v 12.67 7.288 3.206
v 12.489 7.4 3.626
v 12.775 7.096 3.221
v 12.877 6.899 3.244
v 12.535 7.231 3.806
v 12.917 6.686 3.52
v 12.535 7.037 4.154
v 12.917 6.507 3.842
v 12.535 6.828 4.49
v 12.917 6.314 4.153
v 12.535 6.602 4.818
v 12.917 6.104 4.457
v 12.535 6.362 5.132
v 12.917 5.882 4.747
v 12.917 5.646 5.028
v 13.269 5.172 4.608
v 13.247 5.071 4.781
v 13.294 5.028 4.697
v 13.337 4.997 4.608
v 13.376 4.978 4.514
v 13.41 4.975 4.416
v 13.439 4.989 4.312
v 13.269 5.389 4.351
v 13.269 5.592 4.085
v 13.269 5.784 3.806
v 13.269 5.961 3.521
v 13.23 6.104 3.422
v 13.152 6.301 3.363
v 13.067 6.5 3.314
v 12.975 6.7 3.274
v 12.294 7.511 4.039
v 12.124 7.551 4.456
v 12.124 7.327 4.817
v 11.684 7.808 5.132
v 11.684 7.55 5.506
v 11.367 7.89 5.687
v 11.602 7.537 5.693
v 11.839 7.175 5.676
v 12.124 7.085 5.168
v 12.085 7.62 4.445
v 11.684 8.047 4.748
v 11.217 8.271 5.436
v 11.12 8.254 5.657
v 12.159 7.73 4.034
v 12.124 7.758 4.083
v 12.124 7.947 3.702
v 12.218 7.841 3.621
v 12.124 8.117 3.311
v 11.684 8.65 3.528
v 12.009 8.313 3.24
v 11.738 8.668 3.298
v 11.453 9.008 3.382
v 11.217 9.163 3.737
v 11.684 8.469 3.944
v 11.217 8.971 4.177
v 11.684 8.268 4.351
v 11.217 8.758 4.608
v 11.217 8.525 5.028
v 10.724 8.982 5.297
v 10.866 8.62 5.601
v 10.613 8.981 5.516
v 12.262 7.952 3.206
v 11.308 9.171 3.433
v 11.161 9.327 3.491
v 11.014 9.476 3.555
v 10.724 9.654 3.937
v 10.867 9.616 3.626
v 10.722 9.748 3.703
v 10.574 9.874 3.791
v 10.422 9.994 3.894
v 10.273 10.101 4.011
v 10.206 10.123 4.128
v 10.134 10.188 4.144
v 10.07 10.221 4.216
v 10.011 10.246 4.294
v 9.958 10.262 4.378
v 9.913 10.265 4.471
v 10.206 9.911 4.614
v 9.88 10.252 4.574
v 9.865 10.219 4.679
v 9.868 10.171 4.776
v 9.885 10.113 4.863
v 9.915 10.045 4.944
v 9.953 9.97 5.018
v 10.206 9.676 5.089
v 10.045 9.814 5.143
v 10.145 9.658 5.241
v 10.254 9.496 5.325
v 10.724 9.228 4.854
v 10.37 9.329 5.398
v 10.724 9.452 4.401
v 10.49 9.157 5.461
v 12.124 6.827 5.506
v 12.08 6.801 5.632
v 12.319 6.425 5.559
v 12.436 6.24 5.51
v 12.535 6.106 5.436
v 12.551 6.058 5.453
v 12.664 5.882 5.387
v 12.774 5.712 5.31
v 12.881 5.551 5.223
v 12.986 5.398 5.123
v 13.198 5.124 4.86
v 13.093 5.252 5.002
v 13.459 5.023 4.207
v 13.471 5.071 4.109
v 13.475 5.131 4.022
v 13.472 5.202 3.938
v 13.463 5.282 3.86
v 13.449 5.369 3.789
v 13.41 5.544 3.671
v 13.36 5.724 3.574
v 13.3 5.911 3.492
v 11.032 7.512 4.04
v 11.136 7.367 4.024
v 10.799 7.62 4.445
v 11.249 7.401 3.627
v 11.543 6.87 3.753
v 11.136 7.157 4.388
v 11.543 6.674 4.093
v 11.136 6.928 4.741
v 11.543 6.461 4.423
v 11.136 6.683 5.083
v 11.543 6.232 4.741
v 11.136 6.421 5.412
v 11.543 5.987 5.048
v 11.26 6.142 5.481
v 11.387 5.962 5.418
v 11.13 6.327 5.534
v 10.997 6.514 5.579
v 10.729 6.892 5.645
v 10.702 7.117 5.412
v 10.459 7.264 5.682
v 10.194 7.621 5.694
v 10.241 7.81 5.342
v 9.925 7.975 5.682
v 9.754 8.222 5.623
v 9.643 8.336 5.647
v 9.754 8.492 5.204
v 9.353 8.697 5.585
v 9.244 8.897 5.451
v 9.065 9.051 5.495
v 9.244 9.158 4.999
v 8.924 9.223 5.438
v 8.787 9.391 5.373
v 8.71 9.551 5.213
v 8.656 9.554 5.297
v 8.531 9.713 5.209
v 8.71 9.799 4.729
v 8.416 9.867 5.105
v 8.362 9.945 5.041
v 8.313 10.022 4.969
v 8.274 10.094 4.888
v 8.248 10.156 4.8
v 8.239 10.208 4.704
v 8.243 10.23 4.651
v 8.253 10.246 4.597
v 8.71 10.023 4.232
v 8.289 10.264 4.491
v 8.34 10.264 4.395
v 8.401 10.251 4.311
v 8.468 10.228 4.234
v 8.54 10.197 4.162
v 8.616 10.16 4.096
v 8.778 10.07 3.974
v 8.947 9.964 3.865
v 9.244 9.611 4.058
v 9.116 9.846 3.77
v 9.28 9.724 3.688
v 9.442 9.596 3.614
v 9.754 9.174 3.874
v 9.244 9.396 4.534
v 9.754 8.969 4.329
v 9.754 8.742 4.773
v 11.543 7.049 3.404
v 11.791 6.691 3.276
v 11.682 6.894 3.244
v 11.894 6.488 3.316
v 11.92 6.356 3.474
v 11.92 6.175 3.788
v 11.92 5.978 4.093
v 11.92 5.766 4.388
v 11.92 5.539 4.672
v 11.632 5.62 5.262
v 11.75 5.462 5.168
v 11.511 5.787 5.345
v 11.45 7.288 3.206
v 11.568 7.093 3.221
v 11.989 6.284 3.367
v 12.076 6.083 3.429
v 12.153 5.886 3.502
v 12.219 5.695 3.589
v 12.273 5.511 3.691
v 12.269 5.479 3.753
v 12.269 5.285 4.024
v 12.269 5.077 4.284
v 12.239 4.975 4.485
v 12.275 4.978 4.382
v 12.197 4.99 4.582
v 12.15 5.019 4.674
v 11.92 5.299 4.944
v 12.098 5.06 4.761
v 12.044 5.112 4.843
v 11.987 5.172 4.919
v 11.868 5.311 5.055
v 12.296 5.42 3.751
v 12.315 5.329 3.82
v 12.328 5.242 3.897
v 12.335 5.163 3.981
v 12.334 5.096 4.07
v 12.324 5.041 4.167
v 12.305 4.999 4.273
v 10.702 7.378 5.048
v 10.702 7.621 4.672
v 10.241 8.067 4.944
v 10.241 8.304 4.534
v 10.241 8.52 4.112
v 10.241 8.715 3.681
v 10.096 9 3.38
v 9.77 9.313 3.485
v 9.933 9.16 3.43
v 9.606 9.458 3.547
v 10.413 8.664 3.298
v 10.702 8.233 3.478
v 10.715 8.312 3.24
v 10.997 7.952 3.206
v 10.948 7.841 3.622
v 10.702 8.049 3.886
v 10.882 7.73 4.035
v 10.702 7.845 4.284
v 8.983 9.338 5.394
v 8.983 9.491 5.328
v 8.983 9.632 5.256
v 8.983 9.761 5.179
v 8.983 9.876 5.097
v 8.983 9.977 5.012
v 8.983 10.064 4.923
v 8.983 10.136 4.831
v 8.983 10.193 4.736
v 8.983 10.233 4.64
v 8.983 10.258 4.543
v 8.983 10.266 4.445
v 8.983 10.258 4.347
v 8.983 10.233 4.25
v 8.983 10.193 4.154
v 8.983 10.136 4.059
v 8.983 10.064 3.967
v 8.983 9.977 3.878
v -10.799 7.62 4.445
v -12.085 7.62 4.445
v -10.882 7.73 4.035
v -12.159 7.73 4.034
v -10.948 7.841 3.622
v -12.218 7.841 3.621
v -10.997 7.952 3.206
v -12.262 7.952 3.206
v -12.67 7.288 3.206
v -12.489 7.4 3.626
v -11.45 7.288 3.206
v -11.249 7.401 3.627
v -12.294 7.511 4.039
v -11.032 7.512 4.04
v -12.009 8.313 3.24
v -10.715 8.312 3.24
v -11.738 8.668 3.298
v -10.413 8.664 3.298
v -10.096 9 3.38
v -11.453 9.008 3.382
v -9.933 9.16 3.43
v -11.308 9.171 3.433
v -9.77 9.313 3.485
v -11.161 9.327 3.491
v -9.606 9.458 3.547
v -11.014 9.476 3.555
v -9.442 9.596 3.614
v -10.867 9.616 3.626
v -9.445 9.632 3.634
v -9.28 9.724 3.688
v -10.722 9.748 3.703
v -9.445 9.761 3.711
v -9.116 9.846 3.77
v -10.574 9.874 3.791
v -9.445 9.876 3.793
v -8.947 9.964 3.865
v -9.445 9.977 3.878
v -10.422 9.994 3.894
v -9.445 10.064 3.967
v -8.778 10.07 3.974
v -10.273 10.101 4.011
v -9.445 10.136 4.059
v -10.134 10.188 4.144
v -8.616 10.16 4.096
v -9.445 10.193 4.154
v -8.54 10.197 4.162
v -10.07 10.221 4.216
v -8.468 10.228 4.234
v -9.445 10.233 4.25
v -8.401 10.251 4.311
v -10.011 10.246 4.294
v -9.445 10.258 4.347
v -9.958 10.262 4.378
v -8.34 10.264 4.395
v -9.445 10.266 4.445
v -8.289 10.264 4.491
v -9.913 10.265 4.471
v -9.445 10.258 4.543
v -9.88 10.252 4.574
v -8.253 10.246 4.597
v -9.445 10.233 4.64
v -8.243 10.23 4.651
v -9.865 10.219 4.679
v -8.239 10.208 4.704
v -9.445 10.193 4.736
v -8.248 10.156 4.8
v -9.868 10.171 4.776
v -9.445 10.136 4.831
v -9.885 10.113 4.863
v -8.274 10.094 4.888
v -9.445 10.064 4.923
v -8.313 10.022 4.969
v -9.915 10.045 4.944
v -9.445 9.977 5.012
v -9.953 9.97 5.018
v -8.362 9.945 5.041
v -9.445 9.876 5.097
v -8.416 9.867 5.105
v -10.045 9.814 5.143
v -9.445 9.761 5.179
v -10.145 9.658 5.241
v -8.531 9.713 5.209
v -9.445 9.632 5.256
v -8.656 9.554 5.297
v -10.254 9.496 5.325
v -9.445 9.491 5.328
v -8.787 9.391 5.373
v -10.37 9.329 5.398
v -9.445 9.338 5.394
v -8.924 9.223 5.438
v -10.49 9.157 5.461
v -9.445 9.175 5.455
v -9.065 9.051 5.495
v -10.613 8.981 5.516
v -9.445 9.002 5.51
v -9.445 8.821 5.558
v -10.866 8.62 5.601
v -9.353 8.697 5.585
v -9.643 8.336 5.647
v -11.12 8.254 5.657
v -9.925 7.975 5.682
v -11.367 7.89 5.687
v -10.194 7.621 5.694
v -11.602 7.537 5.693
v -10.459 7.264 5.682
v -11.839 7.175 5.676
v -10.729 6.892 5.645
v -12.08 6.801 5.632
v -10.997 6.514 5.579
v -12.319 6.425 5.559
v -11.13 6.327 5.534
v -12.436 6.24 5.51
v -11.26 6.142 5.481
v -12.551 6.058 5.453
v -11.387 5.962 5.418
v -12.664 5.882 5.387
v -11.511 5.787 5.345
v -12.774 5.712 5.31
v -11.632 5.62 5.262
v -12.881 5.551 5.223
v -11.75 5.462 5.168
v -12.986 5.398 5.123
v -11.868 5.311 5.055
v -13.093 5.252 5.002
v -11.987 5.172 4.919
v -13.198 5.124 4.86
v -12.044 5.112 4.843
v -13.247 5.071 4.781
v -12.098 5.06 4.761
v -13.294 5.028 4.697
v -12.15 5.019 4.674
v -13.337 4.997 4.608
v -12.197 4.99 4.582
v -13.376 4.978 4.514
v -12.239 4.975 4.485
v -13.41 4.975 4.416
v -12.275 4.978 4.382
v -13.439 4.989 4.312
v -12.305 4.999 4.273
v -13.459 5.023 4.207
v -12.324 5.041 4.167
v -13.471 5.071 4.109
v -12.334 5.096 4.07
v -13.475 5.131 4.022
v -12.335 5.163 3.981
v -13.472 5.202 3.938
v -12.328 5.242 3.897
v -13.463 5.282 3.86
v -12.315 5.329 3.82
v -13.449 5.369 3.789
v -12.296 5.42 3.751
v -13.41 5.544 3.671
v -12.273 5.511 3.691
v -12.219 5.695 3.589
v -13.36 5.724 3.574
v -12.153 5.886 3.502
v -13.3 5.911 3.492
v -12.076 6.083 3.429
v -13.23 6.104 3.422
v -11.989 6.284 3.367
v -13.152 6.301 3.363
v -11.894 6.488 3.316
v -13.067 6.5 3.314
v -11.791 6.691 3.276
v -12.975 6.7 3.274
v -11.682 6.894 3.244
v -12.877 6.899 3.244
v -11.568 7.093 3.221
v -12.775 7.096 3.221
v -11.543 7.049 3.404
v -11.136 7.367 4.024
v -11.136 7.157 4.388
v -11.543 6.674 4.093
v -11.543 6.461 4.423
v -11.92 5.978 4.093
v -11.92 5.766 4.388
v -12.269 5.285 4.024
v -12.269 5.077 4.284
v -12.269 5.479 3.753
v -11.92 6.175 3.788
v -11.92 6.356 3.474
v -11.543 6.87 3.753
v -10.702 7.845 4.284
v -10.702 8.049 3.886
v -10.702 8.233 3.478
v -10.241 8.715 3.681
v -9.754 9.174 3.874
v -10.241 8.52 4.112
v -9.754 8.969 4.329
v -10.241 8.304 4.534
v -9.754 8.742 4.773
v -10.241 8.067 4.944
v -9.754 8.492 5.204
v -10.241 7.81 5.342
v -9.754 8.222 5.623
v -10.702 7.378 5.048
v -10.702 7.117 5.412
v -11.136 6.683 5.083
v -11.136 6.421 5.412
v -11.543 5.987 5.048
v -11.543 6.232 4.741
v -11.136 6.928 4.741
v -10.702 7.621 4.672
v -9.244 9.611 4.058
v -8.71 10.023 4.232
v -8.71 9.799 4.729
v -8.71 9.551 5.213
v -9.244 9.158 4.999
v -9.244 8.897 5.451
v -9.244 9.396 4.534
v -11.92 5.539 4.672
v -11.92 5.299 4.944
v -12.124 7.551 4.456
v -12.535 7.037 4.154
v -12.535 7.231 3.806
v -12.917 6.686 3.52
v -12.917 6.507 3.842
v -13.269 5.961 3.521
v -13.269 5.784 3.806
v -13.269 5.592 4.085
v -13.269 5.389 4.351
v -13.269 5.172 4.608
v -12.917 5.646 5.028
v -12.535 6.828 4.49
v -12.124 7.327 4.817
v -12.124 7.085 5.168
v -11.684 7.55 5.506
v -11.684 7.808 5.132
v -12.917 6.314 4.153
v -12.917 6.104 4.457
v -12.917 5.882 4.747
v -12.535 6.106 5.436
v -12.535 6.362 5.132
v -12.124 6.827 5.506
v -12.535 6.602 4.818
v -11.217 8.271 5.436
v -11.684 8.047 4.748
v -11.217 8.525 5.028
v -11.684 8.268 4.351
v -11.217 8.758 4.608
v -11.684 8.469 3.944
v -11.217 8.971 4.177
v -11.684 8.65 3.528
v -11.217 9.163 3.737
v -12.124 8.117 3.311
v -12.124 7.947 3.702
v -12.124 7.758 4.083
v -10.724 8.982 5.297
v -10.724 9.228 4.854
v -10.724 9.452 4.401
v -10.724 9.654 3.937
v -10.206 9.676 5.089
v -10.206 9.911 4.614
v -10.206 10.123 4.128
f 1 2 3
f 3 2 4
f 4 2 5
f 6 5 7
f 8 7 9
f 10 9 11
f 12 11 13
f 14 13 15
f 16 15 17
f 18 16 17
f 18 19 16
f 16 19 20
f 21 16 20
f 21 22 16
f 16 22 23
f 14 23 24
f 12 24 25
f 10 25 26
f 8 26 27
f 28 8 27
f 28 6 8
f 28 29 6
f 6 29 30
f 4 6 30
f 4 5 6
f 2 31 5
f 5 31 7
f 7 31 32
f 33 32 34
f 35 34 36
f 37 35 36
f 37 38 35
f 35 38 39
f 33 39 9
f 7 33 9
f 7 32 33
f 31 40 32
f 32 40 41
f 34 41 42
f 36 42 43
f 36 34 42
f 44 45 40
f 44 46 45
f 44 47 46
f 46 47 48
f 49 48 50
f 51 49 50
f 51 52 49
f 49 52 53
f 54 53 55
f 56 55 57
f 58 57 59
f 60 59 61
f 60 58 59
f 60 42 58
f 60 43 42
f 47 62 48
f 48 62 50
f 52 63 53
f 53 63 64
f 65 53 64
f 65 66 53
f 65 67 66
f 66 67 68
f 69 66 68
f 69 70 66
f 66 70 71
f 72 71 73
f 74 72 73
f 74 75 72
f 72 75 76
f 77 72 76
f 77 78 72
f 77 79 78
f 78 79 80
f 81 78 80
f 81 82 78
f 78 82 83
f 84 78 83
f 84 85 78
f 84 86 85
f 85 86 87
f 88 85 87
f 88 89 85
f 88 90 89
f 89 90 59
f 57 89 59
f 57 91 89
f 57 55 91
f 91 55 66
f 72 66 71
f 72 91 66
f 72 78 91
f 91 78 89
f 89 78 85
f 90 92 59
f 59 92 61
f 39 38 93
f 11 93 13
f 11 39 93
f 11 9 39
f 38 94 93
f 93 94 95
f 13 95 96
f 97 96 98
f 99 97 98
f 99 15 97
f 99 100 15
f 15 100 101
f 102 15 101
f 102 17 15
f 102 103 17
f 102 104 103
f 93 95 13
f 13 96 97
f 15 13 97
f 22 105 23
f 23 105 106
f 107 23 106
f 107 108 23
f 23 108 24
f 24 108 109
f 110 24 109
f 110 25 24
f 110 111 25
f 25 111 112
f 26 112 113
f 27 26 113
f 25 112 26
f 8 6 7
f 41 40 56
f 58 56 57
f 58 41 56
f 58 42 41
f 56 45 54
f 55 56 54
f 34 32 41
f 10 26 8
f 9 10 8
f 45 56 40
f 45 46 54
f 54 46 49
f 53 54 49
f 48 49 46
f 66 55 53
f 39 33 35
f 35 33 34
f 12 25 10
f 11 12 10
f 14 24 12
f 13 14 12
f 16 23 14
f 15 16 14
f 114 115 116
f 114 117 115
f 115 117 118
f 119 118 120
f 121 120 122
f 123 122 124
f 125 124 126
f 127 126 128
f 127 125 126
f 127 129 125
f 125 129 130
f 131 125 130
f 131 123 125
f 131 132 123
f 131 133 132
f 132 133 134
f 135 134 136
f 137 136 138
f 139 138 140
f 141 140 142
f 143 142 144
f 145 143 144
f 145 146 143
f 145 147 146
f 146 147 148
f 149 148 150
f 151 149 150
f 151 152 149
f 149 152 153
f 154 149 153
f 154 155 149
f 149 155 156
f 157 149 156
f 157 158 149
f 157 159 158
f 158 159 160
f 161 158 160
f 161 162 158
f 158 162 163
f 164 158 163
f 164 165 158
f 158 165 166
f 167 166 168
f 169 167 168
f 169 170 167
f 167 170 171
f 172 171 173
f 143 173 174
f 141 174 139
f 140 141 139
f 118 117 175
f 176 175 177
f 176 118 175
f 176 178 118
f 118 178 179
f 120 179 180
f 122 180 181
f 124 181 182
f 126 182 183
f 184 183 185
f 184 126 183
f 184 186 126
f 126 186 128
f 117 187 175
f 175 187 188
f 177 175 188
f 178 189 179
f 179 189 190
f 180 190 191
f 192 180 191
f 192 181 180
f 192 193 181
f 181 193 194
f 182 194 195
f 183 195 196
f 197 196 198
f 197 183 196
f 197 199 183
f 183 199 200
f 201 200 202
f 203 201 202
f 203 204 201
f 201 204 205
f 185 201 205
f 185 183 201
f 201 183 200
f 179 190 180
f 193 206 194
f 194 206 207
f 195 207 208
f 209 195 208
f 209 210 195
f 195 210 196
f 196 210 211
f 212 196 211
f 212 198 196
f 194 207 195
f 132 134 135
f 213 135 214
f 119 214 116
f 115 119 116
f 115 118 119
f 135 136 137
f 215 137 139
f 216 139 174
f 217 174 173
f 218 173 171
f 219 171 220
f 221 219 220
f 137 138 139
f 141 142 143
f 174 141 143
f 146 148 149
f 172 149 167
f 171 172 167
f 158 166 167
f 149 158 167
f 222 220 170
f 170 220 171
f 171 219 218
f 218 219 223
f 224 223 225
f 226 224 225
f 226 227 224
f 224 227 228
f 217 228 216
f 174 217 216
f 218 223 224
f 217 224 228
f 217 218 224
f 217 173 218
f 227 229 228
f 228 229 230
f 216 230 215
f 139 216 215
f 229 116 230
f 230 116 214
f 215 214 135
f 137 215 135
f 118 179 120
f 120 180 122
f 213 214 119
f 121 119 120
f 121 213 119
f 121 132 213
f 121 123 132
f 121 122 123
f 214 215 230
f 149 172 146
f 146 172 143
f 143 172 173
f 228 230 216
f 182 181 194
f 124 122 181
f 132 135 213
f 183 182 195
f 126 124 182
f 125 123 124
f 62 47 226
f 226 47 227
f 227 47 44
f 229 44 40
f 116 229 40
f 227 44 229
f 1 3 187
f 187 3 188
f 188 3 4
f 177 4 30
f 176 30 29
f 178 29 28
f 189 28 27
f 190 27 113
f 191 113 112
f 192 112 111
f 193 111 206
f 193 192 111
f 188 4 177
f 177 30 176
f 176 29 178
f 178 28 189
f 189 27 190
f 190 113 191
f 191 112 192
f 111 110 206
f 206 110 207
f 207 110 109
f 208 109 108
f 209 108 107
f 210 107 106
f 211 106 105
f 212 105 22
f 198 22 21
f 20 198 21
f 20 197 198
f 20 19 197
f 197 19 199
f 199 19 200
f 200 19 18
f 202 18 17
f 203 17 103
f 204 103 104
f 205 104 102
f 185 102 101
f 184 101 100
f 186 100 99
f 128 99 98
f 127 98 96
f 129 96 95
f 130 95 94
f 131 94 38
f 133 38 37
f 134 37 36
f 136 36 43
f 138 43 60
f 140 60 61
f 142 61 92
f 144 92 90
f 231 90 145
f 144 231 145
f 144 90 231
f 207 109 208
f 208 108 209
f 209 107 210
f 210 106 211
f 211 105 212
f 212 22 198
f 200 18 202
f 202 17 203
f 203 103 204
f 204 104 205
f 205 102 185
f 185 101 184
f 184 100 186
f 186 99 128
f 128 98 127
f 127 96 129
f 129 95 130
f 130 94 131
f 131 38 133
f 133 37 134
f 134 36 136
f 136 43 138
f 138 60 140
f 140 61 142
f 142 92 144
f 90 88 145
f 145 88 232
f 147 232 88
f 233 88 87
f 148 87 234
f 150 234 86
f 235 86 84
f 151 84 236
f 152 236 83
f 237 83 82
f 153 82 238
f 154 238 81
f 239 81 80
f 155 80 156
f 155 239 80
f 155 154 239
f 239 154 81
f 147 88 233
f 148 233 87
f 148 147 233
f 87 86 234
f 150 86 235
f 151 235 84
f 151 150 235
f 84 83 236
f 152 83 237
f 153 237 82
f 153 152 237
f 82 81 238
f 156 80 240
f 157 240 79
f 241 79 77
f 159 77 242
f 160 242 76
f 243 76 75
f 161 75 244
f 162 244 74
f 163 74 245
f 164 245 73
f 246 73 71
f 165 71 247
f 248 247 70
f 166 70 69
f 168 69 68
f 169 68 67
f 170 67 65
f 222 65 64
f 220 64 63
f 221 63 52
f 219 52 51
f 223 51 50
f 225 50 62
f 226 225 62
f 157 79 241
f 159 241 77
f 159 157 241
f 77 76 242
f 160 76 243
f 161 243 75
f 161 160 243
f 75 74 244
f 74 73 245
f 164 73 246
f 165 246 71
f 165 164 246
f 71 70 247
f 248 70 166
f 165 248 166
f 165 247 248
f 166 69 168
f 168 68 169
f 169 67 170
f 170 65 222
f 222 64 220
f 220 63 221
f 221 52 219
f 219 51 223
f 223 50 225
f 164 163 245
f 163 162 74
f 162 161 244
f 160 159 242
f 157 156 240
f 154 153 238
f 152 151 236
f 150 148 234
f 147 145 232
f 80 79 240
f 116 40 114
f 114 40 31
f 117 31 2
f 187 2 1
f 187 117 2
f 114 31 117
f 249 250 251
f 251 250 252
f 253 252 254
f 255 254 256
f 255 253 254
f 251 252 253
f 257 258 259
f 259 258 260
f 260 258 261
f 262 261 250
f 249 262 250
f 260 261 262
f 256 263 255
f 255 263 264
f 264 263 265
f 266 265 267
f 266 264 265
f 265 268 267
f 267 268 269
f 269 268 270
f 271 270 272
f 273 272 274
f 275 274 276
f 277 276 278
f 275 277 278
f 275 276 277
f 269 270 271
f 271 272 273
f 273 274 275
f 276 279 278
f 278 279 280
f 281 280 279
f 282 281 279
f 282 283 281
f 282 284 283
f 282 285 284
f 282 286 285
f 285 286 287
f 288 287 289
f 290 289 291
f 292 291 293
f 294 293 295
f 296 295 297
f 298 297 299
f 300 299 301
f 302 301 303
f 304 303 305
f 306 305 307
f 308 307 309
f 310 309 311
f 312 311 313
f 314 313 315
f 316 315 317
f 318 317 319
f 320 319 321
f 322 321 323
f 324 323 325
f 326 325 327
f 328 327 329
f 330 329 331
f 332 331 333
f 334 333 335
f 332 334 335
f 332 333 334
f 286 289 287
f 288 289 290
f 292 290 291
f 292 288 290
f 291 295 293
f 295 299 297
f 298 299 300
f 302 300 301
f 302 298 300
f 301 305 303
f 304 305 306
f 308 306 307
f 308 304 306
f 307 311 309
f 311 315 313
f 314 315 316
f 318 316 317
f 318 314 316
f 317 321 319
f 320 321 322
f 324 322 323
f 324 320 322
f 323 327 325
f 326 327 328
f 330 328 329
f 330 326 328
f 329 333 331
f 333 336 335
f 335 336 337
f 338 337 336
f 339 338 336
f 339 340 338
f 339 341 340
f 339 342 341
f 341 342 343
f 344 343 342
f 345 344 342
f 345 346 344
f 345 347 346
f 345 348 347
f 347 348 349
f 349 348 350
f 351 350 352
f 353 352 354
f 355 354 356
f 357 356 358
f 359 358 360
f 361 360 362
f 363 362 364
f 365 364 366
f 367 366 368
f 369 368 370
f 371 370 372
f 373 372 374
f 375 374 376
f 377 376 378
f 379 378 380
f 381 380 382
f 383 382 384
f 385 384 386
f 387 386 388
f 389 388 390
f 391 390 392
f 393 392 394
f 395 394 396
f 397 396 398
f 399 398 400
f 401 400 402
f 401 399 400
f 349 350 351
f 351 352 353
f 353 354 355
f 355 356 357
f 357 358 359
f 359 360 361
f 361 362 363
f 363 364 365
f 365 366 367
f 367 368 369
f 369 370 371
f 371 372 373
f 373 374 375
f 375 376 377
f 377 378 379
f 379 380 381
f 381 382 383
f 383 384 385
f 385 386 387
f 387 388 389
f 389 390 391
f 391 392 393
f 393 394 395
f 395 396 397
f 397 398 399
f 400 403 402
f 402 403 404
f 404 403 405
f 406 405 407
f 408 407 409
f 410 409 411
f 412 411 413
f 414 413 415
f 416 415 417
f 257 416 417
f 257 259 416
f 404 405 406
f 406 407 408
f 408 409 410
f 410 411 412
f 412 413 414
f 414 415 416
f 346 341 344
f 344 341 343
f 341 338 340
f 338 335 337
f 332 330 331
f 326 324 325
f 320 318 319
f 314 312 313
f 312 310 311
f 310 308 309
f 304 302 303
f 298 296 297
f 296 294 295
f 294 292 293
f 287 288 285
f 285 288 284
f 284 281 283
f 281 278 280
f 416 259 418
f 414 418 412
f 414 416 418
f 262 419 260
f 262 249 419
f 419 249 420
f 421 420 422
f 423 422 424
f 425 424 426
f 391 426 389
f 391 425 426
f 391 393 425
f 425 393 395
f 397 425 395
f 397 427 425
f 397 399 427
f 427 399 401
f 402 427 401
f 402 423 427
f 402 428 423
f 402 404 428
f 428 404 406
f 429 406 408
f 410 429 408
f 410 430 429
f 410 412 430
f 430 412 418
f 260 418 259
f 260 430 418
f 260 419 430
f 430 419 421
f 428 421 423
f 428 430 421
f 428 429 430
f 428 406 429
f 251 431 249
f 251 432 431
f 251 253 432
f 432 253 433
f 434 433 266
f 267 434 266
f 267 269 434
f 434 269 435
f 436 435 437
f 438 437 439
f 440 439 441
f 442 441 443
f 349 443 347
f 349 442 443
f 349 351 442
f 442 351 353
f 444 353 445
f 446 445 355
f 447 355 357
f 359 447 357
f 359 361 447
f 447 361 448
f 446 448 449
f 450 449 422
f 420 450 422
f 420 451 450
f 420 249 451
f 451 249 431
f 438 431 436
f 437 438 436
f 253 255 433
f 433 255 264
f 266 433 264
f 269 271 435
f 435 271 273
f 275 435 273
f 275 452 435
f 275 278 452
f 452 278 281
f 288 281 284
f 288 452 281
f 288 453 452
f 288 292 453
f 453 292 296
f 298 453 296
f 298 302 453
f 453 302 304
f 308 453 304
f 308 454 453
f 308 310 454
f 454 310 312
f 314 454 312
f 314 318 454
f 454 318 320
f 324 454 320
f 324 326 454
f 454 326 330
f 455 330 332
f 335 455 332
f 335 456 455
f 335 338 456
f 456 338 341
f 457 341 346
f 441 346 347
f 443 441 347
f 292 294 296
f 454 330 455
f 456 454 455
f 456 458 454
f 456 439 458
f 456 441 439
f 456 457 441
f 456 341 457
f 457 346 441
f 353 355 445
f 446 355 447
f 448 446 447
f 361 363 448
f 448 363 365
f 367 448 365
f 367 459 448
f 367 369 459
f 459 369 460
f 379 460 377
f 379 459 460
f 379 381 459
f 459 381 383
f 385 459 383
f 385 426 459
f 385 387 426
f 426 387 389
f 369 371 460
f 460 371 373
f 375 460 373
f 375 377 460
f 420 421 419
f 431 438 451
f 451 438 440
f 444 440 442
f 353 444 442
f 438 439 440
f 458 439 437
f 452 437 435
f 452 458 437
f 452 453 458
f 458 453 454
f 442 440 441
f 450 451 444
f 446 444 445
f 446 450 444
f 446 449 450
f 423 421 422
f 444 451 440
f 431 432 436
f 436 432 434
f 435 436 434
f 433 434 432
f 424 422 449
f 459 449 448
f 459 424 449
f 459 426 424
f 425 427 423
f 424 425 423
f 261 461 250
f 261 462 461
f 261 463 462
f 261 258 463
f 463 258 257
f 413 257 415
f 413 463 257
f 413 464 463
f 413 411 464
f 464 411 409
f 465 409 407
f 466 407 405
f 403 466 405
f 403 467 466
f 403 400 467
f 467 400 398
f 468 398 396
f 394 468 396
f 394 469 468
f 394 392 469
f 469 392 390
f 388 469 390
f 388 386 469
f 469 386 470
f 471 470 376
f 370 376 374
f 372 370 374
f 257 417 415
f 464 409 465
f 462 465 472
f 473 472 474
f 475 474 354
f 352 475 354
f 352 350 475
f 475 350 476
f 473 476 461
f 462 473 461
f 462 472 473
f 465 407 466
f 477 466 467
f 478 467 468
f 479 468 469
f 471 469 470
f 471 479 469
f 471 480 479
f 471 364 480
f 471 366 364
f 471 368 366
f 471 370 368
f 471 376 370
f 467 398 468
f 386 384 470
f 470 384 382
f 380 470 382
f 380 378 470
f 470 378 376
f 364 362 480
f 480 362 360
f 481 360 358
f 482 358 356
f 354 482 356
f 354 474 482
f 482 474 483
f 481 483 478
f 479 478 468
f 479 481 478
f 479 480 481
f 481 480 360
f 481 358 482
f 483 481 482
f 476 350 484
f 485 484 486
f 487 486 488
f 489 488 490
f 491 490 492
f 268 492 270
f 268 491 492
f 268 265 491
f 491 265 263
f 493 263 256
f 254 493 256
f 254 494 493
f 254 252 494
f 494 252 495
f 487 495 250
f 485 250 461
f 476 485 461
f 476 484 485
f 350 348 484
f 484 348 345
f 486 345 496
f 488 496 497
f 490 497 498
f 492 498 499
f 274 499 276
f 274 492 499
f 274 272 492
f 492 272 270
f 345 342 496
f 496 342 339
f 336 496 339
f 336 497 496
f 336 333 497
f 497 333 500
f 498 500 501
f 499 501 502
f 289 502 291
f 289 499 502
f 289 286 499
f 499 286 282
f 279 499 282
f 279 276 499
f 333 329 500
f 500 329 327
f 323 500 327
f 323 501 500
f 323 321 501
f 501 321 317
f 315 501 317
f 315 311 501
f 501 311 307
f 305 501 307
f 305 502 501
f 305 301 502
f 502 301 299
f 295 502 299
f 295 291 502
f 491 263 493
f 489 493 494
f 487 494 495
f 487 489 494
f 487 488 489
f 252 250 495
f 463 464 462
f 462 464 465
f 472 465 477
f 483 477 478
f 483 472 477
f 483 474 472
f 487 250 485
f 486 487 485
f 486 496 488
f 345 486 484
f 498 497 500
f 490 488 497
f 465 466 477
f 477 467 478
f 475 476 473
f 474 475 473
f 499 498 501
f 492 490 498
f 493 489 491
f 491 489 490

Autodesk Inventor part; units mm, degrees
ref_plane "YZ Plane" through (0, 0, 0) normal (1, 0, 0) x (0, 1, 0)
ref_plane "XZ Plane" through (0, 0, 0) normal (0, 1, 0) x (-1, 0, 0)
ref_plane "XY Plane" through (0, 0, 0) normal (0, 0, 1) x (1, 0, 0)
sketch "Sketch1" plane through (0, 0, 0) normal (1, 0, 0) x (0, 1, 0)
  circle A0 centre (7.62, 4.445) radius 1.905
  line L0 (7.62, 4.445) -> (7.62, 2.54)
  line L1 (7.62, 4.445) -> (8.1131, 2.6049)
  line L2 (7.62, 4.445) -> (7.1269, 2.6049)
  ellipse E0 centre (7.62, 4.445) end of major axis (10.2659, 4.445) minor radius 1.2487
  line L3 (7.62, 4.445) -> (7.9519, 3.2062)
  line L4 (7.62, 4.445) -> (7.2881, 3.2062)
  point P0 (0, 0)
  dimension "d0" = 3.81
  dimension "d1" = 7.62
  dimension "d2" = 4.445
  dimension "d3" = 15
  dimension "d4" = 15
extrude "Extrusion1" add sketch "Sketch1" along normal mid plane 50.8 contours E0 A0 | A0 E0 L1 L2 | A0 E0 picked at (5.4761, 4.4598) picked at (9.7253, 4.2127)
sketch "Sketch2" plane through (0, 0, 0) normal (1, 0, 0) x (0, 1, 0)
  arc A0 (-7.0261, 12.0881) -> (6.9439, 12.0881) centre (-0.0411, -0.0103) ccw
  circle A1 centre (-0.0411, -0.0103) radius 13.97
  circle A2 centre (-0.0411, -0.0103) radius 14.986
  line L0 (14.9449, -0.0103) -> (-15.0271, -0.0103)
  line L1 (14.9449, -0.0103) -> (13.9289, -0.0103)
  line L2 (-14.0111, -0.0103) -> (-15.0271, -0.0103)
  point P0 (0, 0)
  dimension "d7" = 1.016
revolve "Revolution1" cut sketch "Sketch2" angle 360 about axis through (0, 14.9449, -0.0103) along (0, -1, 0) keep common part contours A0 L0 A2 A1
equation "\"d4\" = d3"
properties part number "PacmanEye"
